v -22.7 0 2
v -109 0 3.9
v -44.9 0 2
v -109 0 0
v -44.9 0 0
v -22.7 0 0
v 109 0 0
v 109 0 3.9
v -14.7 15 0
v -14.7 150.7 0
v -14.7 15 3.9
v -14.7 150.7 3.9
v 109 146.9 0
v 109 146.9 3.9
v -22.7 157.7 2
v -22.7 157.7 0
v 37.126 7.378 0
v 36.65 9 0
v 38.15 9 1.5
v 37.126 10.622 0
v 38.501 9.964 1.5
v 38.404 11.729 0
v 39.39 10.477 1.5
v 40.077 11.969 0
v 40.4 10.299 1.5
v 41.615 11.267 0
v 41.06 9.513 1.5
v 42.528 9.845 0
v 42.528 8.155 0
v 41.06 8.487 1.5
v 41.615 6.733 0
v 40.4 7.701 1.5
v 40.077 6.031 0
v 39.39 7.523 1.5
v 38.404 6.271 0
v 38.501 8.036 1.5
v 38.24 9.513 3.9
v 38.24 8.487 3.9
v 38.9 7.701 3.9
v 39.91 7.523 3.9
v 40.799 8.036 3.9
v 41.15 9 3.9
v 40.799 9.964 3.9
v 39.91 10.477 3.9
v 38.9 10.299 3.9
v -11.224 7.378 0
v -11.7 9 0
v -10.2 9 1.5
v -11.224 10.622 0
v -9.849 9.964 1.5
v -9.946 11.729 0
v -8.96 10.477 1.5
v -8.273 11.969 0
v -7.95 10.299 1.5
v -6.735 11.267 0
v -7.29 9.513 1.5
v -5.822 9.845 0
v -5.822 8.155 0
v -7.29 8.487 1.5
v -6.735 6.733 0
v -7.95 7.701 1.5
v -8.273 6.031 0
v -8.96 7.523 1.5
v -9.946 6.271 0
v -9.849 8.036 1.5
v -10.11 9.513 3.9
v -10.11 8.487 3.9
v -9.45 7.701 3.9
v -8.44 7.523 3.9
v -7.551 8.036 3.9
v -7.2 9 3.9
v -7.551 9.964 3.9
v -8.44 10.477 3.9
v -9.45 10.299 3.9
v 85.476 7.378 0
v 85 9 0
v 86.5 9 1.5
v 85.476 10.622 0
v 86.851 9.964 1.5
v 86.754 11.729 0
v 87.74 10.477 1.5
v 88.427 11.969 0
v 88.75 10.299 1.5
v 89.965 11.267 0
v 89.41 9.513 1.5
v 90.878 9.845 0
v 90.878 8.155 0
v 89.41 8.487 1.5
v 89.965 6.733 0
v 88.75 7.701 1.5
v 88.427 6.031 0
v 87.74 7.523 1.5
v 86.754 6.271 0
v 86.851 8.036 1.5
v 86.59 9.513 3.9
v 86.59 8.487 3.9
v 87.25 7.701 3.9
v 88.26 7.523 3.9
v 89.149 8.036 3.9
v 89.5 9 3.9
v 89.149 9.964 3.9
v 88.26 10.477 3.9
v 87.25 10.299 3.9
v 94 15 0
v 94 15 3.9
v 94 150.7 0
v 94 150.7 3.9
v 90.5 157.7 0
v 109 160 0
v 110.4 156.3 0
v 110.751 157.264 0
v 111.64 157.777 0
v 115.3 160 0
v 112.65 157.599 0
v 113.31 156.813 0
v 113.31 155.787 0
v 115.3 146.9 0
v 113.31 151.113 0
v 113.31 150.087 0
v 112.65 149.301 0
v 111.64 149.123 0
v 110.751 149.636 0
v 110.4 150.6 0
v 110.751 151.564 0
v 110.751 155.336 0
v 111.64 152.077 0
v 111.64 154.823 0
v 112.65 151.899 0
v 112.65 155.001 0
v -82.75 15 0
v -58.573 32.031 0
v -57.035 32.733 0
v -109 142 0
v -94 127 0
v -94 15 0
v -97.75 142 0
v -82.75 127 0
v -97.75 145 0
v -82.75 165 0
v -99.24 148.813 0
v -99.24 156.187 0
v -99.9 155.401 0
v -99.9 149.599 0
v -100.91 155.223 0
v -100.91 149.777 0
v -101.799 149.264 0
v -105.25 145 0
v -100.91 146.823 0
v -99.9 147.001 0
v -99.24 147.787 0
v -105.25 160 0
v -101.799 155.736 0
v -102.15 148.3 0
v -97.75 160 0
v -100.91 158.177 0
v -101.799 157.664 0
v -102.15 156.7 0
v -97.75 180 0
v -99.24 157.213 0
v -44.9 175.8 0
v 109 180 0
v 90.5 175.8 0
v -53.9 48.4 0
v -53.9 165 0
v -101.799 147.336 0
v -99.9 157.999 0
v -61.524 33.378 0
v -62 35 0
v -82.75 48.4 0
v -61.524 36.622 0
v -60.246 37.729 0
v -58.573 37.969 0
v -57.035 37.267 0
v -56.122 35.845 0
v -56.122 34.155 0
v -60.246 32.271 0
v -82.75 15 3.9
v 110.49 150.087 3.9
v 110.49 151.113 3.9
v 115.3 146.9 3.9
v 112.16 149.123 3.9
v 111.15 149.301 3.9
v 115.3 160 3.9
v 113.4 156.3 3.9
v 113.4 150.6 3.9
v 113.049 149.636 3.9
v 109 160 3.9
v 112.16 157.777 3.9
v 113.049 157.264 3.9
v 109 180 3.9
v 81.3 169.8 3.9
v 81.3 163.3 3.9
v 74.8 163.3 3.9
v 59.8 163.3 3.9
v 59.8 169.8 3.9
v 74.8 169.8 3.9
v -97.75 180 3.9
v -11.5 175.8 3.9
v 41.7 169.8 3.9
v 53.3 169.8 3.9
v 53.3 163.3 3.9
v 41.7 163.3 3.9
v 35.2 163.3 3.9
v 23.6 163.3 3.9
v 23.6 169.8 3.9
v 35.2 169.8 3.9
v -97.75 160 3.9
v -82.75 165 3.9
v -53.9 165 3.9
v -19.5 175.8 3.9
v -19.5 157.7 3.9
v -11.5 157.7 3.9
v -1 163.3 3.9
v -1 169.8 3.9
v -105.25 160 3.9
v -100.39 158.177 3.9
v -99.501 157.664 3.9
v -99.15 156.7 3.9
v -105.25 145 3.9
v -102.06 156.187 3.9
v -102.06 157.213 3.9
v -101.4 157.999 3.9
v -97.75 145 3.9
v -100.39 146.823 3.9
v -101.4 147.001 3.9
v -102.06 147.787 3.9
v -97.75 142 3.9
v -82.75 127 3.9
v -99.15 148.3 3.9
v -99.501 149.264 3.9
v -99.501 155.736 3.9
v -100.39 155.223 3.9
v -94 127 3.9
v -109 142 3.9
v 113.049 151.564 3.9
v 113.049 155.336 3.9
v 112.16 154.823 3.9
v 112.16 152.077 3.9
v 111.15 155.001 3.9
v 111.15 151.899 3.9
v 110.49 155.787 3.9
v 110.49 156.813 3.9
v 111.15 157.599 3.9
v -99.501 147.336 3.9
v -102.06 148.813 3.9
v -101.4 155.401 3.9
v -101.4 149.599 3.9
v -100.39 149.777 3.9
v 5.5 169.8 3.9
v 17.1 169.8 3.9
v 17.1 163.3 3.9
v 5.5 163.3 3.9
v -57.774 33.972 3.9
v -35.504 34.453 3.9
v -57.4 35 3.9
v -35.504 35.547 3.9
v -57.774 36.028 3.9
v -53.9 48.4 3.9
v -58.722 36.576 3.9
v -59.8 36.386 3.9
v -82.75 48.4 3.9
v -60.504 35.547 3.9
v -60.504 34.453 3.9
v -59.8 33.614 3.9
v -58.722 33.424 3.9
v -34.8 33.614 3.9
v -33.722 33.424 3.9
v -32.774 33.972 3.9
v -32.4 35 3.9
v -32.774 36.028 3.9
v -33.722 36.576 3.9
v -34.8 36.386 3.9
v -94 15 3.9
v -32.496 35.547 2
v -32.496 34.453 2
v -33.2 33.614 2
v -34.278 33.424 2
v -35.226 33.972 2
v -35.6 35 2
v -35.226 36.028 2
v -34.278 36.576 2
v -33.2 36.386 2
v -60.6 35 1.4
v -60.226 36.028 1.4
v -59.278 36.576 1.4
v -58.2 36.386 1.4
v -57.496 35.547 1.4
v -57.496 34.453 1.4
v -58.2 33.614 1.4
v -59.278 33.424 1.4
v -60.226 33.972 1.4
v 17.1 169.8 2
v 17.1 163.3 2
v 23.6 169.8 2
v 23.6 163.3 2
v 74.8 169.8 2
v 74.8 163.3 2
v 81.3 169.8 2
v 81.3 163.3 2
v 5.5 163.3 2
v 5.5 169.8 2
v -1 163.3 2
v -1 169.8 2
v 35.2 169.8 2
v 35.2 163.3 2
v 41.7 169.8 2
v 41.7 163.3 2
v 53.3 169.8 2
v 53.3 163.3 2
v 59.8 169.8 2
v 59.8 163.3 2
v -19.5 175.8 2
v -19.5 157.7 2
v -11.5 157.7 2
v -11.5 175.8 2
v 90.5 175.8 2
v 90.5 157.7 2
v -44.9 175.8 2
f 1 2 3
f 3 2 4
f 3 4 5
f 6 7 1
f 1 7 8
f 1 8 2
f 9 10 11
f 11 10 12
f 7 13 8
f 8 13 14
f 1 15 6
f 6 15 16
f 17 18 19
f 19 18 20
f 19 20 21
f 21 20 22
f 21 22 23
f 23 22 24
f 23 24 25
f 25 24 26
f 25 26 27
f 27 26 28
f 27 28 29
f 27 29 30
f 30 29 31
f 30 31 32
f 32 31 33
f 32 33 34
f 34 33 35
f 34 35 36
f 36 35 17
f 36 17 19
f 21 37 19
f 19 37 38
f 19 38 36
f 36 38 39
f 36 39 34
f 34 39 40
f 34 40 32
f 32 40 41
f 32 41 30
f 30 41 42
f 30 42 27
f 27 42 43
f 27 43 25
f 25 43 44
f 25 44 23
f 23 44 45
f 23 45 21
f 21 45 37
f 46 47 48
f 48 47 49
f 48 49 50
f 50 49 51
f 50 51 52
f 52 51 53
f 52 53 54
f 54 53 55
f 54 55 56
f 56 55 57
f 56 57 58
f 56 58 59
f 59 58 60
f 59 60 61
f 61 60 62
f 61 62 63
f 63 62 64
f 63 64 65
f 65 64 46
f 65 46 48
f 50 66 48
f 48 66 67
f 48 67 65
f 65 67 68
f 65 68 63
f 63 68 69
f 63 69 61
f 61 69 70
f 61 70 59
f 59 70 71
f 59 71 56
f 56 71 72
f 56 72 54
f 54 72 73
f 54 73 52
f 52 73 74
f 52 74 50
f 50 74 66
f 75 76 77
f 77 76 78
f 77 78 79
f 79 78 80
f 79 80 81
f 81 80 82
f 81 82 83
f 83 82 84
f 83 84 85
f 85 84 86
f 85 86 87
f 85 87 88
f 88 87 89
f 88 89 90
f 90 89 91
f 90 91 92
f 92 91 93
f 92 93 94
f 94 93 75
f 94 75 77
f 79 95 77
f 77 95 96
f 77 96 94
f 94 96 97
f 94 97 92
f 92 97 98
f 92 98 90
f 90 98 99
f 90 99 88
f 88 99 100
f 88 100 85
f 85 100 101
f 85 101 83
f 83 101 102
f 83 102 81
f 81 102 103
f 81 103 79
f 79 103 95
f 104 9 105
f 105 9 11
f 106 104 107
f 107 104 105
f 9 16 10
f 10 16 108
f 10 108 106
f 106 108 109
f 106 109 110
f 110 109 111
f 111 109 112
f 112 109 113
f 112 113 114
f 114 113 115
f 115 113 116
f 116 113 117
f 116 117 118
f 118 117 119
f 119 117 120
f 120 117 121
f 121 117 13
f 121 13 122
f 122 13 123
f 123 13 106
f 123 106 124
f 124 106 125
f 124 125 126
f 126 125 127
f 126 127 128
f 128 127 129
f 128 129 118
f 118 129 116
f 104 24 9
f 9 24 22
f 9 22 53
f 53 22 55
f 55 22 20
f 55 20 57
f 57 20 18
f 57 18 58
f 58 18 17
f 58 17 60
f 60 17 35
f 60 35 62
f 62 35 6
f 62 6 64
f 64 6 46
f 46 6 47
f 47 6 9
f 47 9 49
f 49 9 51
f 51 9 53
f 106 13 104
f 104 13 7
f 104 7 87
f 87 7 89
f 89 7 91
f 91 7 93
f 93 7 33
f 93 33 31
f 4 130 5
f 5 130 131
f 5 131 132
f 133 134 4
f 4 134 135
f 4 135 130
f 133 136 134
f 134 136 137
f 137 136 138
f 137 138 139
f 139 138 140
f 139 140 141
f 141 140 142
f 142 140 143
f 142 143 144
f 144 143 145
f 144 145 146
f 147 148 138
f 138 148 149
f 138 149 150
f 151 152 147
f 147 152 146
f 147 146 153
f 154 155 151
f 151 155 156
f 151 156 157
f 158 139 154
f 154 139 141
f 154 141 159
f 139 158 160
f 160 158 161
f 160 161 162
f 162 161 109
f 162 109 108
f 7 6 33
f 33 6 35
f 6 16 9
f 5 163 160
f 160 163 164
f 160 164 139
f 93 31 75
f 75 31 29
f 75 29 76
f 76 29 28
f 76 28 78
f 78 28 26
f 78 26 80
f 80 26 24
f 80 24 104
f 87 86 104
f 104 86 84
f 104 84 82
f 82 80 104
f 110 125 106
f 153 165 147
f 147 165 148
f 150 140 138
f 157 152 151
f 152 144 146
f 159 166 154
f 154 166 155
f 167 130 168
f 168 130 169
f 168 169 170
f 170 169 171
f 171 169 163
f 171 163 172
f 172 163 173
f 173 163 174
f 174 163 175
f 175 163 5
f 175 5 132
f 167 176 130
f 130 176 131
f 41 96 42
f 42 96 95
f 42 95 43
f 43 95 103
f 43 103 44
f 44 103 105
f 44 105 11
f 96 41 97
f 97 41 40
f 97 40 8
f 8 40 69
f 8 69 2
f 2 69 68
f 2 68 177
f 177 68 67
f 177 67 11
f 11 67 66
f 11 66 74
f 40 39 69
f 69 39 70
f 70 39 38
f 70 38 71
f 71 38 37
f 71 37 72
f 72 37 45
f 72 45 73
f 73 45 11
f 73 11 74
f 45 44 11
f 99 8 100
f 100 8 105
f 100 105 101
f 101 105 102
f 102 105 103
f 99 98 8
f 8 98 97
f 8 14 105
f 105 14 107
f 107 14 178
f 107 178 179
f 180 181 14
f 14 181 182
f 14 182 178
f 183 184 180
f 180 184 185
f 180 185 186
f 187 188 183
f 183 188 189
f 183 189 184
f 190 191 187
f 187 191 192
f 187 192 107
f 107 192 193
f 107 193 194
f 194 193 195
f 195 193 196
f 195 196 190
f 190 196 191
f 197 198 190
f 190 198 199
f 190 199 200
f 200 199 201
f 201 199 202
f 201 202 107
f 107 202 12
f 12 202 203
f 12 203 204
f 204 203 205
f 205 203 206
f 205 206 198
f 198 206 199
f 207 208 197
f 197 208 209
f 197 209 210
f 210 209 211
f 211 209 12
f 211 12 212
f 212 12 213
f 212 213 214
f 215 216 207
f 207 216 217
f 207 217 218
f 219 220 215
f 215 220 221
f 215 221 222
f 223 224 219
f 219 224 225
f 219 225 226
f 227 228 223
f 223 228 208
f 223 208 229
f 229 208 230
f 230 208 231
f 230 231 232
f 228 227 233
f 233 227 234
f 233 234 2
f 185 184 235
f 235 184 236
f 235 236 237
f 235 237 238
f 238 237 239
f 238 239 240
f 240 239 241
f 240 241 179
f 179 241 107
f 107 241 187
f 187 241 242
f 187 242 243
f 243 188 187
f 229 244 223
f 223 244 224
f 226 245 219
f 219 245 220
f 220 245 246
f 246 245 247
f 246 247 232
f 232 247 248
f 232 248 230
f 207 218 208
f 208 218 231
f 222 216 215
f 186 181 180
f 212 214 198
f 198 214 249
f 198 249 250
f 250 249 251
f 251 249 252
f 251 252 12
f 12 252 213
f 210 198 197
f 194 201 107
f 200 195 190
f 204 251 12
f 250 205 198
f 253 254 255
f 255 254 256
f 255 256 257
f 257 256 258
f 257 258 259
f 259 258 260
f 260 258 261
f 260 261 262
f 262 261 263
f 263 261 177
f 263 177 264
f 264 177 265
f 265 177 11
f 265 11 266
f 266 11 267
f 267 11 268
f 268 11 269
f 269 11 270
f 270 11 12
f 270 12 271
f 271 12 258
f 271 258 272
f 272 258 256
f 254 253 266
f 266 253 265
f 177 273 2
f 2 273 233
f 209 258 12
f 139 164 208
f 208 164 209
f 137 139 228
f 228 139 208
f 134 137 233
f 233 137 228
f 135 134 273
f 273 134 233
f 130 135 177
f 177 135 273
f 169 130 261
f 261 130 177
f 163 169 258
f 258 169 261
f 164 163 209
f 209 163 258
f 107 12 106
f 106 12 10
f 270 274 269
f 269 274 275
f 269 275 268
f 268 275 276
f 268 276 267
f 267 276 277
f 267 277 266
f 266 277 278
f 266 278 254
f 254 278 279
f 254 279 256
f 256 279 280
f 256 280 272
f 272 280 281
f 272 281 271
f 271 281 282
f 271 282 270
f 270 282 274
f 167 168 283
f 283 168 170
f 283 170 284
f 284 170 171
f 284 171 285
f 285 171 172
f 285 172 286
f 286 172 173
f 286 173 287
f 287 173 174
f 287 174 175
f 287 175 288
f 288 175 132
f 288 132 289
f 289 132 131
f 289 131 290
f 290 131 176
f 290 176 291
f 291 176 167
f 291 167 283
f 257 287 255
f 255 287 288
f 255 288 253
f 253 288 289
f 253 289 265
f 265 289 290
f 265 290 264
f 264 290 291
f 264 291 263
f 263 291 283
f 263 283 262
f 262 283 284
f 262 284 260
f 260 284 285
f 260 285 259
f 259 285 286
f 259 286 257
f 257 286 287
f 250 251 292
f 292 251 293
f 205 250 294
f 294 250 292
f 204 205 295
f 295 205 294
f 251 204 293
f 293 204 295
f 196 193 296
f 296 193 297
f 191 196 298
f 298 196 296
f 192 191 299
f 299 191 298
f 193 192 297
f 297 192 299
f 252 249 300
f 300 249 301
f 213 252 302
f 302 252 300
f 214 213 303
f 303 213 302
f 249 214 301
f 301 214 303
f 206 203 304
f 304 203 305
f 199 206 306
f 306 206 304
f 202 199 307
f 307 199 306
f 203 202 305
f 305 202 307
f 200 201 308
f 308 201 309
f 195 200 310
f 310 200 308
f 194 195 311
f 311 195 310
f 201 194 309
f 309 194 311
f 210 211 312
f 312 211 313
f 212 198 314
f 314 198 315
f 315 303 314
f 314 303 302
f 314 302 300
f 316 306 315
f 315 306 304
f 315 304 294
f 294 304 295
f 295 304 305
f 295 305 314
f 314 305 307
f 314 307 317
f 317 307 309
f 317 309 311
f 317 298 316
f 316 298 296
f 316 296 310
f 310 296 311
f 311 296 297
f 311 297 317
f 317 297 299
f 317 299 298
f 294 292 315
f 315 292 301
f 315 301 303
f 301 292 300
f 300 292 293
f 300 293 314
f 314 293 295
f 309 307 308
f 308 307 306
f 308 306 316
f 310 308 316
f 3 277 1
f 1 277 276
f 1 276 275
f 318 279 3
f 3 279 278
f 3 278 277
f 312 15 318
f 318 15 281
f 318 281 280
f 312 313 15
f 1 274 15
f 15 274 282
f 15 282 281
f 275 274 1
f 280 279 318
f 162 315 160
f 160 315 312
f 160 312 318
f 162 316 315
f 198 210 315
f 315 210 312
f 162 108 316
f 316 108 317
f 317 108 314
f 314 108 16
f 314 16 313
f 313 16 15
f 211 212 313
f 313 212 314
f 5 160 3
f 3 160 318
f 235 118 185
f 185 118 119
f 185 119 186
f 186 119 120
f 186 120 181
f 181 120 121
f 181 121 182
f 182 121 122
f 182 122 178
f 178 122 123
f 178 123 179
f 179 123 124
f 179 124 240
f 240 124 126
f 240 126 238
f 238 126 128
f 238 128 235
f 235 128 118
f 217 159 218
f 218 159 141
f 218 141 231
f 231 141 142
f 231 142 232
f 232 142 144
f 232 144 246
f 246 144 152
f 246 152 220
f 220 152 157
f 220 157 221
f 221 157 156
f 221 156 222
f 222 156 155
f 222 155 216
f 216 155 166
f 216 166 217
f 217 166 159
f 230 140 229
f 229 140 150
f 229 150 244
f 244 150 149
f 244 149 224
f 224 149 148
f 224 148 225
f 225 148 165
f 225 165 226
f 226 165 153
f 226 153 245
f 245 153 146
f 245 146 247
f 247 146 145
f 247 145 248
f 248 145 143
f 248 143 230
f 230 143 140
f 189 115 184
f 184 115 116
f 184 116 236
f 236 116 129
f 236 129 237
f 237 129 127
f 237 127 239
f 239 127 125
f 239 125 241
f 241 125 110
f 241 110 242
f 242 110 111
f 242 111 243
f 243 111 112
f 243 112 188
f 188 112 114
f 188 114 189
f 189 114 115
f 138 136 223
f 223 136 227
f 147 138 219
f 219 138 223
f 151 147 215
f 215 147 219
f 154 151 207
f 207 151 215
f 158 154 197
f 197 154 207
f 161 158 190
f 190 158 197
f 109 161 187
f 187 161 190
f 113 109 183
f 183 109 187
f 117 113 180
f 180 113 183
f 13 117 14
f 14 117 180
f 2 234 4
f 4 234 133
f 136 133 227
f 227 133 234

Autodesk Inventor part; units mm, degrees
ref_plane "YZ Plane" through (0, 0, 0) normal (1, 0, 0) x (0, 1, 0)
ref_plane "XZ Plane" through (0, 0, 0) normal (0, 1, 0) x (-1, 0, 0)
ref_plane "XY Plane" through (0, 0, 0) normal (0, 0, 1) x (1, 0, 0)
ref_plane "Plano de trabajo1" through (0, 0, 0) normal (0, 0, 1) x (1, 0, 0)
sketch "Boceto1" plane through (0, 0, 0) normal (0, 0, 1) x (1, 0, 0)
  circle A0 centre (-100.65, -156.7) radius 1.65
  circle A1 centre (-100.65, -148.3) radius 1.65
  circle A2 centre (-100.65, 156.7) radius 1.65
  circle A3 centre (-100.65, 148.3) radius 1.65
  line L0 (-97.75, 145) -> (-105.25, 145)
  line L1 (-97.75, 142) -> (-97.75, 145)
  line L2 (-109, 142) -> (-97.75, 142)
  line L3 (-109, -142) -> (-109, 142)
  line L4 (-97.75, -142) -> (-109, -142)
  line L5 (-97.75, -145) -> (-97.75, -142)
  line L6 (-105.25, -145) -> (-97.75, -145)
  line L7 (-105.25, -160) -> (-105.25, -145)
  line L8 (-97.75, -160) -> (-105.25, -160)
  line L9 (-97.75, -180) -> (-97.75, -160)
  line L10 (109, -180) -> (-97.75, -180)
  line L11 (115.3, -160) -> (109, -160)
  line L12 (109, 146.9) -> (109, -146.9)
  line L13 (109, -146.9) -> (115.3, -146.9)
  line L14 (115.3, 146.9) -> (109, 146.9)
  line L15 (109, 180) -> (109, 160)
  line L16 (109, 160) -> (115.3, 160)
  line L17 (-97.75, 180) -> (109, 180)
  line L18 (-97.75, 160) -> (-97.75, 180)
  line L19 (-105.25, 160) -> (-97.75, 160)
  line L20 (-105.25, 145) -> (-105.25, 160)
  circle A4 centre (111.9, -156.3) radius 1.2
  circle A5 centre (111.9, -150.6) radius 1.2
  circle A6 centre (111.9, 156.3) radius 1.2
  circle A7 centre (111.9, 150.6) radius 1.2
  line L21 (115.3, -146.9) -> (115.3, -160)
  line L22 (115.3, 160) -> (115.3, 146.9)
  line L23 (109, -160) -> (109, -180)
  point P0 (0, 0)
extrude "Extrusión1" add sketch "Boceto1" along normal blind 3.9 contours A0 | A1 | A2 | A3 | L0 L20 L19 L18 L17 L15 L16 L22 L14 L12 L13 L21 L11 L23 L10 L9 L8 L7 L6 L5 L4 L3 L2 L1 | A4 | A5 | A6 | A7
sketch "Boceto3" plane through (0, 0, 0) normal (0, 0, -1) x (-1, 0, 0)
  line L0 (111, 180) -> (111, -185.2)
  line L1 (90.8, 170.8) -> (90.8, -176)
  line L2 (-99.7, -176) -> (-99.7, 170.8)
  line L3 (-117.3, 180) -> (-117.3, -185.2)
  line L4 (90.8, 170.8) -> (90.8, -176)
  line L5 (90.8, -176) -> (-99.7, -176)
  line L6 (-99.7, -176) -> (-99.7, 170.8)
  line L7 (-117.3, 180) -> (-117.3, -185.2)
  line L8 (109, -187.2) -> (-115.3, -187.2)
  line L9 (111, 180) -> (111, -185.2)
  circle A0 centre (-111.9, -150.6) radius 2.5
  circle A1 centre (100.65, -148.3) radius 2.5
  circle A2 centre (100.65, -156.7) radius 2.5
  circle A3 centre (-111.9, -156.3) radius 2.5
  arc A4 (-117.3, -185.2) -> (-115.3, -187.2) centre (-115.3, -185.2) ccw
  line L10 (109, -187.2) -> (-115.3, -187.2)
  arc A5 (109, -187.2) -> (111, -185.2) centre (109, -185.2) ccw
  circle A6 centre (-111.9, -150.6) radius 2.5
  circle A7 centre (-111.9, -156.3) radius 2.5
  arc A8 (-117.3, -185.2) -> (-115.3, -187.2) centre (-115.3, -185.2) ccw
  arc A9 (109, -187.2) -> (111, -185.2) centre (109, -185.2) ccw
  circle A10 centre (-111.9, 150.6) radius 2.5
  circle A11 centre (100.65, -156.7) radius 2.5
  circle A12 centre (100.65, 148.3) radius 2.5
  circle A13 centre (100.65, 156.7) radius 2.5
  circle A14 centre (100.65, -148.3) radius 2.5
  circle A15 centre (-111.9, 156.3) radius 2.5
  arc A16 (111, 180) -> (109, 182) centre (109, 180) ccw
  line L11 (109, 182) -> (-115.3, 182)
  arc A17 (-115.3, 182) -> (-117.3, 180) centre (-115.3, 180) ccw
  line L12 (-99.7, 170.8) -> (90.8, 170.8)
  line L13 (90.8, -176) -> (-99.7, -176)
  circle A18 centre (-111.9, 150.6) radius 2.5
  circle A19 centre (100.65, 148.3) radius 2.5
  circle A20 centre (100.65, 156.7) radius 2.5
  circle A21 centre (-111.9, 156.3) radius 2.5
  arc A22 (111, 180) -> (109, 182) centre (109, 180) ccw
  line L14 (109, 182) -> (-115.3, 182)
  arc A23 (-115.3, 182) -> (-117.3, 180) centre (-115.3, 180) ccw
  line L15 (-99.7, 170.8) -> (90.8, 170.8)
  point P0 (0, 0)
  point P1 (111, 0)
  point P2 (90.8, 0)
  point P3 (-99.7, 0)
  point P4 (-117.3, 0)
hole "Agujero1" at (-100.65, -148.3, 0) at (-100.65, -156.7, 0) at (111.9, -156.3, 0) at (111.9, -150.6, 0) at (-100.65, 156.7, 0) at (-100.65, 148.3, 0) at (111.9, 150.6, 0) at (111.9, 156.3, 0) direction (0, 0, 1) diameter 3 end through all
sketch "Boceto4" plane through (0, 0, 3.9) normal (0, 0, 1) x (1, 0, 0)
  line L0 (-59, -109.6) -> (-59, -139.7)
  line L1 (-59, -139.7) -> (-49.6, -139.7)
  line L2 (-49.6, -109.6) -> (-59, -109.6)
  line L3 (-59, -62.4) -> (-59, -169.5)
  line L4 (-3.9, -169.5) -> (-3.9, -62.4)
  line L5 (-3.9, -62.4) -> (-59, -62.4)
  line L6 (-59, -169.5) -> (-3.9, -169.5)
  line L7 (-49.6, -139.7) -> (-49.6, -109.6)
  point P0 (0, 0)
  point P1 (-3.9, -139.7)
  point P2 (-3.9, -109.6)
extrude "Extrusión2" cut sketch "Boceto4" against normal through all
sketch "Boceto5" plane through (0, 0, 3.9) normal (0, 0, 1) x (1, 0, 0)
  line L0 (-59, -62.4) -> (-3.9, -62.4)
  line L1 (-3.9, -62.4) -> (-3.9, -87.4)
  line L2 (-3.9, -109.6) -> (-3.9, -139.7)
  line L3 (-3.9, -87.4) -> (1.1, -87.4)
  line L4 (-3.9, -87.4) -> (1.1, -87.4) construction
  line L5 (1.1, -87.4) -> (1.1, -107.4)
  line L6 (1.1, -107.4) -> (-3.9, -107.4)
  line L7 (-3.9, -87.4) -> (-3.9, -107.4)
  point P0 (0, 0)
  point P1 (-3.9, -169.5)
  dimension "d11" = 25
  dimension "d12" = 5
  dimension "d13" = 0
  dimension "d14" = 20
extrude "Extrusión3" cut sketch "Boceto5" against normal blind 4
sketch "Boceto6" plane through (0, 0, 0) normal (0, 0, -1) x (-1, 0, 0)
  line L0 (-1.1, -87.4) -> (-1.1, -107.4)
  line L1 (-1.1, -87.4) -> (-61.1, -87.4)
  line L2 (-61.1, -87.4) -> (-61.1, -107.4)
  line L3 (-61.1, -107.4) -> (-1.1, -107.4)
  line L4 (-1.1, -107.4) -> (-1.1, -87.4)
  point P0 (0, 0)
  dimension "d17" = 60
extrude "Extrusión4" cut sketch "Boceto6" against normal blind 1
sketch "Boceto7" plane through (0, 0, 0) normal (0, 0, -1) x (-1, 0, 0)
  line L0 (3.9, -109.6) -> (3.9, -139.7)
  line L1 (109, 142) -> (109, -142)
  line L2 (3.9, -87.4) -> (109, -87.4)
  line L3 (109, -87.4) -> (109, -107.4)
  line L4 (109, -107.4) -> (3.9, -107.4)
  line L5 (3.9, -107.4) -> (3.9, -87.4)
  point P0 (0, 0)
  point P1 (3.9, -107.4)
  point P2 (3.9, -107.4)
  dimension "d20" = 20
extrude "Extrusión5" cut sketch "Boceto7" against normal blind 1
sketch "Boceto8" plane through (0, 0, 3.9) normal (0, 0, 1) x (1, 0, 0)
  line L0 (109, 180) -> (-97.75, 180)
  line L1 (0, 180) -> (0, -258.0429)
  line L2 (102.7, -146.9) -> (102.7, 146.9)
  line L3 (-109, 142) -> (-109, -142)
  line L4 (-109, 0) -> (102.7, 0)
  line L5 (-3.9, -87.4) -> (-3.9, -62.4)
  line L6 (-3.9, -62.4) -> (-59.3756, -62.4)
  line L7 (-59.3756, -62.4) -> (-59.3756, -169.7804)
  line L8 (-59.3756, -169.7804) -> (-3.9, -169.7804)
  line L9 (-3.9, -169.7804) -> (-3.9, -62.4)
  line L10 (-64.3756, -57.4) -> (1.1, -57.4)
  line L11 (1.1, -57.4) -> (1.1, -174.7804)
  line L12 (1.1, -174.7804) -> (-64.3756, -174.7804)
  line L13 (-64.3756, -174.7804) -> (-64.3756, -57.4)
  point P0 (0, 0)
  point P1 (102.7, 180)
  point P2 (0, -174.7804)
  point P3 (0, -57.4)
  dimension "d23" = 5
extrude "Extrusión6" add sketch "Boceto8" along normal blind 16 contours L1 L12 L13 L10
sketch "Boceto9" plane through (-59.3756, -169.7804, 3.9) normal (1, 0, 0) x (0, 0, -1)
  line L0 (-0.9, 89.3804) -> (-0.9, 107.3804)
  line L1 (2.4, 107.3804) -> (-0.9, 107.3804)
  line L2 (2.4, 107.3804) -> (2.4, 0.2804)
  line L3 (2.4, 0.2804) -> (-0.9, 0.2804)
  line L4 (-0.9, 0.2804) -> (-0.9, 6.4804)
  line L5 (-0.9, 6.4804) -> (-12.4, 6.4804)
  line L6 (-12.4, 6.4804) -> (-12.4, 15.4804)
  line L7 (-12.4, 15.4804) -> (-0.9, 15.4804)
  line L8 (-0.9, 15.4804) -> (-0.9, 20.2804)
  line L9 (-0.9, 20.2804) -> (-10.2, 20.2804)
  line L10 (-10.2, 20.2804) -> (-10.2, 27.4804)
  line L11 (-10.2, 27.4804) -> (-0.9, 27.4804)
  line L12 (-0.9, 27.4804) -> (-0.9, 30.0804)
  line L13 (-0.9, 30.0804) -> (-13.95, 30.0804)
  line L14 (-13.95, 60.1804) -> (-13.95, 30.0804)
  line L15 (-13.95, 60.1804) -> (-0.9, 60.1804)
  line L16 (-0.9, 60.1804) -> (-0.9, 73.3804)
  line L17 (-0.9, 73.3804) -> (-7.6, 73.3804)
  line L18 (-7.6, 73.3804) -> (-7.6, 89.3804)
  line L19 (-7.6, 89.3804) -> (-0.9, 89.3804)
  line L20 (0, 107.3804) -> (0, 0)
  line L21 (0, 107.3804) -> (-16, 107.3804)
  line L22 (-16, 0) -> (-16, 107.3804)
  line L23 (0, 0) -> (-16, 0)
  line L24 (-0.9, 89.3804) -> (-0.9, 73.3804)
  line L25 (-0.9, 73.3804) -> (-0.9, 6.4804)
  point P0 (3.9, 169.7804)
  point P1 (-0.9, 15.4804)
  point P2 (-0.9, 20.2804)
  point P3 (-0.9, 27.4804)
  point P4 (-0.9, 30.0804)
  point P5 (-0.9, 60.1804)
extrude "Extrusión7" cut sketch "Boceto9" against normal blind 15 contours L24 L17 L18 L19 | L25 L13 L14 L15 | L25 L9 L10 L11 | L5 L6 L7 L25
sketch "Boceto10" plane through (-59.3756, -169.7804, 3.9) normal (1, 0, 0) x (0, 0, -1)
  line L0 (-16, 0) -> (-16, 107.3804)
  line L1 (0, 107.3804) -> (-16, 107.3804)
  line L2 (-16, 0) -> (-13.95, 0)
  line L3 (-13.95, 0) -> (-13.95, 107.3804)
  line L4 (-13.95, 107.3804) -> (-16, 107.3804)
  line L5 (-16, 107.3804) -> (-16, 0)
  point P0 (3.9, 169.7804)
  dimension "d28" = 2.05
extrude "Extrusión8" add sketch "Boceto10" along normal up to surface (55.4756 mm away)
sketch "Boceto11" plane through (-59.3756, -109.6, 17.85) normal (0, 0, -1) x (-1, 0, 0)
  line L0 (-14.4756, 41.2) -> (-36.6756, 41.2)
  line L1 (-36.6756, 41.2) -> (-36.6756, 47.2)
  line L2 (-14.4756, 47.2) -> (-14.4756, 41.2)
  line L3 (-14.4756, 47.2) -> (-36.6756, 47.2)
  line L4 (-0.3756, 29.2) -> (-12.3756, 29.2)
  line L5 (-12.3756, 13.2) -> (-12.3756, 29.2)
  line L6 (-0.3756, 13.2) -> (-12.3756, 13.2)
  line L7 (-0.3756, 13.2) -> (-0.3756, 29.2)
  line L8 (-0.3756, -44.7) -> (-15.3756, -44.7)
  line L9 (-0.3756, -53.7) -> (-15.3756, -53.7)
  line L10 (-15.3756, -53.7) -> (-15.3756, -44.7)
  line L11 (-0.3756, -39.9) -> (-26.3756, -39.9)
  line L12 (-0.3756, -32.7) -> (-26.3756, -32.7)
  line L13 (-26.3756, -39.9) -> (-26.3756, -32.7)
  line L14 (-9.7756, 0) -> (-9.7756, -30.1)
  line L15 (-9.7756, 0) -> (-0.3756, 0)
  line L16 (-0.3756, -32.7) -> (-26.3756, -32.7)
  line L17 (-0.3756, -32.7) -> (-26.3756, -32.7)
  line L18 (-0.3756, -30.1) -> (-9.7756, -30.1)
  arc A0 (-48.2506, 42.8) -> (-49.9006, 41.15) centre (-49.9006, 42.8) ccw
  circle A1 centre (-5.9506, 42.8) radius 1.65
  circle A2 centre (-49.9006, -55.5) radius 1.65
  circle A3 centre (-5.9506, -55.5) radius 1.65
  line L19 (-55.4756, -60.1804) -> (-55.4756, 47.2)
  line L20 (-55.4756, 47.2) -> (-45.4756, 47.2)
  line L21 (-45.4756, 47.2) -> (-45.4756, 37.2)
  line L22 (-45.4756, 37.2) -> (-55.4756, 37.2)
  line L23 (-55.4756, 37.2) -> (-55.4756, 47.2)
  line L24 (-0.3756, 47.2) -> (-10.3756, 47.2)
  line L25 (-10.3756, 47.2) -> (-10.3756, 37.2)
  line L26 (-10.3756, 37.2) -> (-0.3756, 37.2)
  line L27 (-0.3756, 37.2) -> (-0.3756, 47.2)
  line L28 (0, -60.1804) -> (-55.4756, -60.1804)
  line L29 (-55.4756, -60.1804) -> (-45.4756, -60.1804)
  line L30 (-55.4756, -50.1804) -> (-55.4756, -60.1804)
  line L31 (-0.3756, -59.9) -> (-0.3756, 47.2)
  line L32 (-0.3756, -59.9) -> (-10.3756, -59.9)
  line L33 (-10.3756, -59.9) -> (-10.3756, -53.8)
  line L34 (-10.3756, -53.8) -> (-0.3756, -53.8)
  line L35 (-0.3756, -53.8) -> (-0.3756, -59.9)
  line L36 (-55.4756, -59.9) -> (-0.3756, -59.9)
  line L37 (-55.4756, -59.9) -> (-45.4756, -59.9)
  line L38 (-45.4756, -59.9) -> (-45.4756, -49.9)
  line L39 (-45.4756, -49.9) -> (-55.4756, -49.9)
  line L40 (-55.4756, -49.9) -> (-55.4756, -59.9)
  circle A4 centre (-49.9006, 42.8) radius 1.65
  point P0 (-59.3756, 109.6)
  point P1 (-0.3756, -53.8)
  dimension "d31" = 10
  dimension "d32" = 10
  dimension "d33" = 10
  dimension "d34" = 10
  dimension "d37" = 6.1
  dimension "d38" = 10
  dimension "d39" = 10
extrude "Extrusión9" add sketch "Boceto11" along normal blind 12.5 contours L19 L20 L21 L22 | L36 L19 L39 L38 | L31 L32 L33 L34 | L26 L25 L24 L27
sketch "Boceto12" plane through (-64.3756, -57.4, 3.9) normal (0, 1, 0) x (1, 0, 0)
  line L0 (41.6756, -0.9) -> (60.4756, -0.9)
  line L1 (60.4756, 2.4) -> (60.4756, -0.9)
  line L2 (60.4756, 2.4) -> (5.3756, 2.4)
  line L3 (5.3756, 2.4) -> (5.3756, -0.9)
  line L4 (5.3756, -0.9) -> (19.4756, -0.9)
  line L5 (19.4756, -0.9) -> (19.4756, -9.5)
  line L6 (19.4756, -9.5) -> (41.6756, -9.5)
  line L7 (41.6756, -9.5) -> (41.6756, -0.9)
  line L8 (19.4756, -0.9) -> (42.0812, -0.9)
  point P0 (64.3756, 3.9)
extrude "Extrusión10" cut sketch "Boceto12" against normal blind 12.5 contours L7 L6 L5 L8
sketch "Boceto13" plane through (0, 0, 3.9) normal (0, 0, 1) x (1, 0, 0)
  line L0 (-44.9, -57.4) -> (-22.7, -57.4)
  line L1 (-22.7, -57.4) -> (-44.9, -57.4)
  line L2 (-44.9, -57.4) -> (-44.9, -52.4)
  line L3 (-44.9, -52.4) -> (-22.7, -52.4)
  line L4 (-22.7, -52.4) -> (-22.7, -57.4)
  point P0 (0, 0)
  dimension "d44" = 5
extrude "Extrusión11" cut sketch "Boceto13" against normal blind 12.5
sketch "Boceto15" plane through (0, 0, 0) normal (0, 0, -1) x (-1, 0, 0)
  line L0 (22.7, 175.8) -> (22.7, -52.4)
  line L1 (44.9, -52.4) -> (44.9, 175.8)
  line L2 (44.9, 175.8) -> (22.7, 175.8)
  line L3 (18.5, 175.8) -> (44.9, 175.8)
  line L4 (-102.7, 175.8) -> (97.75, 175.8)
  line L5 (44.9, 157.7) -> (18.5, 157.7)
  line L6 (18.5, 157.7) -> (-90.5, 157.7)
  line L7 (-90.5, 180) -> (-90.5, 130)
  circle A0 centre (100.65, -156.7) radius 1.65
  circle A1 centre (100.65, -148.3) radius 1.65
  circle A2 centre (100.65, 156.7) radius 1.65
  circle A3 centre (100.65, 148.3) radius 1.65
  line L8 (97.75, 145) -> (105.25, 145)
  line L9 (105.25, 145) -> (105.25, 160)
  line L10 (105.25, 160) -> (97.75, 160)
  line L11 (97.75, 160) -> (97.75, 180)
  line L12 (97.75, 180) -> (-109, 180)
  line L13 (-109, 160) -> (-115.3, 160)
  line L14 (-109, -160) -> (-109, -180)
  line L15 (-115.3, 146.9) -> (-109, 146.9)
  line L16 (-109, -146.9) -> (-115.3, -146.9)
  line L17 (-109, 180) -> (-109, 160)
  line L18 (-115.3, -160) -> (-109, -160)
  line L19 (-109, -180) -> (97.75, -180)
  line L20 (97.75, -180) -> (97.75, -160)
  line L21 (97.75, -160) -> (105.25, -160)
  line L22 (105.25, -160) -> (105.25, -145)
  line L23 (105.25, -145) -> (97.75, -145)
  line L24 (97.75, -145) -> (97.75, -142)
  line L25 (97.75, -142) -> (109, -142)
  line L26 (109, -142) -> (109, 142)
  line L27 (109, 142) -> (97.75, 142)
  line L28 (97.75, 142) -> (97.75, 145)
  circle A4 centre (100.65, -156.7) radius 1.65
  circle A5 centre (100.65, -148.3) radius 1.65
  circle A6 centre (100.65, 156.7) radius 1.65
  circle A7 centre (100.65, 148.3) radius 1.65
  line L29 (97.75, 145) -> (105.25, 145)
  line L30 (105.25, 145) -> (105.25, 160)
  line L31 (105.25, 160) -> (97.75, 160)
  line L32 (97.75, 160) -> (97.75, 180)
  line L33 (97.75, 180) -> (-109, 180)
  line L34 (-109, 160) -> (-115.3, 160)
  line L35 (-109, -160) -> (-109, -180)
  line L36 (-115.3, 146.9) -> (-109, 146.9)
  line L37 (-109, -146.9) -> (-115.3, -146.9)
  line L38 (-109, 180) -> (-109, 160)
  line L39 (-115.3, -160) -> (-109, -160)
  line L40 (-109, -180) -> (97.75, -180)
  line L41 (97.75, -180) -> (97.75, -160)
  line L42 (97.75, -160) -> (105.25, -160)
  line L43 (105.25, -160) -> (105.25, -145)
  line L44 (105.25, -145) -> (97.75, -145)
  line L45 (97.75, -145) -> (97.75, -142)
  line L46 (97.75, -142) -> (109, -142)
  line L47 (109, -142) -> (109, 142)
  line L48 (109, 142) -> (97.75, 142)
  line L49 (97.75, 142) -> (97.75, 145)
  line L50 (44.9, -52.4) -> (44.9, -57.4)
  line L51 (22.7, -52.4) -> (44.9, -52.4)
  circle A8 centre (-111.9, -156.3) radius 1.2
  circle A9 centre (-111.9, -150.6) radius 1.2
  circle A10 centre (-111.9, 156.3) radius 1.2
  circle A11 centre (-111.9, 150.6) radius 1.2
  line L52 (-115.3, 160) -> (-115.3, 146.9)
  line L53 (-109, 146.9) -> (-109, -146.9)
  line L54 (-115.3, -146.9) -> (-115.3, -160)
  circle A12 centre (-111.9, -156.3) radius 1.2
  circle A13 centre (-111.9, -150.6) radius 1.2
  circle A14 centre (-111.9, 156.3) radius 1.2
  circle A15 centre (-111.9, 150.6) radius 1.2
  line L55 (-115.3, 160) -> (-115.3, 146.9)
  line L56 (-109, 146.9) -> (-109, -146.9)
  line L57 (-115.3, -146.9) -> (-115.3, -160)
  point P0 (0, 0)
  point P1 (-102.7, 180)
  point P2 (-102.7, 160)
  point P3 (-102.7, 146.9)
  point P4 (-102.7, -146.9)
  point P5 (-102.7, -160)
  point P6 (-102.7, -180)
  point P7 (-90.5, 175.8)
  point P8 (22.7, 157.7)
extrude "Extrusión13" cut sketch "Boceto15" against normal blind 2 contours L2 L1 L5 L0 | L0 L5 L6 L7 L4 L3 | L5 L1 L51 L0
sketch "Boceto16" plane through (0, 0, 2) normal (0, 0, -1) x (-1, 0, 0)
  line L0 (22.7, 157.7) -> (-90.5, 157.7)
  line L1 (-90.5, 157.7) -> (-81.3, 157.7)
  line L2 (-90.5, 157.7) -> (-81.3, 157.7) construction
  line L3 (-81.3, 157.7) -> (-81.3, 175.8645)
  line L4 (-90.5, 175.8) -> (44.9, 175.8)
  line L5 (-90.5, 175.8) -> (-90.5, 169.8)
  line L6 (-90.5, 157.7) -> (-90.5, 175.8)
  line L7 (-90.5, 169.8) -> (44.9, 169.8)
  line L8 (44.9, 175.8) -> (44.9, -52.4)
  line L9 (22.7, 157.7) -> (-90.5, 157.7)
  line L10 (-90.5, 157.7) -> (-90.5, 163.3)
  line L11 (-90.5, 163.3) -> (44.9, 163.3)
  line L12 (-81.3, 163.3) -> (-74.8, 163.3)
  line L13 (-74.8, 163.3) -> (-74.8, 169.8)
  line L14 (-74.8, 169.8) -> (-81.3, 169.8)
  line L15 (-81.3, 169.8) -> (-81.3, 163.3)
  line L16 (-90.5, 163.3) -> (-59.8, 163.3)
  line L17 (-59.8, 163.3) -> (-59.8, 169.8)
  line L18 (-59.8, 163.3) -> (-53.3, 163.3)
  line L19 (-53.3, 163.3) -> (-53.3, 169.8)
  line L20 (-53.3, 169.8) -> (-59.8, 169.8)
  line L21 (-59.8, 169.8) -> (-59.8, 163.3)
  line L22 (-90.5, 163.3) -> (-41.7, 163.3)
  line L23 (-41.7, 163.3) -> (-41.7, 169.8)
  line L24 (-41.7, 163.3) -> (-35.2, 163.3)
  line L25 (-35.2, 163.3) -> (-35.2, 169.8)
  line L26 (-35.2, 169.8) -> (-41.7, 169.8)
  line L27 (-41.7, 169.8) -> (-41.7, 163.3)
  line L28 (-90.5, 163.3) -> (-23.6, 163.3)
  line L29 (-90.5, 163.3) -> (-23.6, 163.3) construction
  line L30 (-23.6, 163.3) -> (-23.6, 169.8)
  line L31 (-23.6, 163.3) -> (-17.1, 163.3)
  line L32 (-17.1, 163.3) -> (-17.1, 169.8)
  line L33 (-17.1, 169.8) -> (-23.6, 169.8)
  line L34 (-23.6, 169.8) -> (-23.6, 163.3)
  line L35 (-90.5, 163.3) -> (-5.5, 163.3)
  line L36 (-90.5, 163.3) -> (-5.5, 163.3) construction
  line L37 (-5.5, 163.3) -> (1, 163.3)
  line L38 (1, 163.3) -> (1, 169.8)
  line L39 (1, 169.8) -> (-5.5, 169.8)
  line L40 (-5.5, 169.8) -> (-5.5, 163.3)
  line L41 (-90.5, 175.8) -> (44.9, 175.8)
  line L42 (-90.5, 175.8) -> (11.5, 175.8)
  line L43 (-90.5, 175.8) -> (11.5, 175.8) construction
  line L44 (11.5, 175.8) -> (11.5, 157.7)
  line L45 (11.5, 157.7) -> (19.5, 157.7)
  line L46 (19.5, 157.7) -> (19.5, 175.8)
  line L47 (19.5, 175.8) -> (11.5, 175.8)
  line L48 (11.5, 175.8) -> (11.5, 157.7)
  point P0 (0, 0)
  dimension "d58" = 9.2
  dimension "d59" = 0
  dimension "d60" = 6
  dimension "d61" = 5.6
  dimension "d62" = 6.5
  dimension "d63" = 30.7
  dimension "d64" = 6.5
  dimension "d65" = 6.5
  dimension "d66" = 48.8
  dimension "d67" = 6.5
  dimension "d68" = 6.5
  dimension "d69" = 66.9
  dimension "d70" = 0
  dimension "d71" = 90
  dimension "d72" = 6.5
  dimension "d73" = 6.5
  dimension "d74" = 85
  dimension "d75" = 0
  dimension "d76" = 6.5
  dimension "d77" = 6.5
  dimension "d80" = 102
  dimension "d81" = 0
  dimension "d82" = 8
extrude "Extrusión14" cut sketch "Boceto16" against normal through all contours L0 L44 L11 L46 | L11 L44 L7 L46 | L7 L44 L4 L46 | L3 L7 L13 L11 | L11 L40 L7 L38 | L17 L7 L19 L11 | L11 L30 L7 L32 | L23 L7 L25 L11
fillet "Empalme1" radius 5 5 edges at (0, -116.0902, 19.9) (-32.1878, -57.4, 19.9) (0, -57.4, 11.9) (-32.1878, -174.7804, 19.9) (0, -174.7804, 11.9)
sketch "Boceto17" plane through (-59.3756, -109.6, 17.85) normal (0, 0, -1) x (-1, 0, 0)
  line L0 (-0.3756, -32.7) -> (-26.3756, -32.7)
  line L1 (-26.3756, -39.9) -> (-26.3756, -32.7)
  line L2 (-0.3756, -39.9) -> (-26.3756, -39.9)
  line L3 (-26.3756, -32.7) -> (-15.3756, -32.7)
  line L4 (-15.3756, -32.7) -> (-15.3756, -39.9)
  line L5 (-15.3756, -39.9) -> (-26.3756, -39.9)
  line L6 (-26.3756, -39.9) -> (-26.3756, -32.7)
  point P0 (-59.3756, 109.6)
  point P1 (-15.3756, -32.7)
  dimension "d84" = 11
extrude "Extrusión15" cut sketch "Boceto17" against normal blind 16
ref_plane "Plano de trabajo2" through (-97.75, 0, 0) normal (0, -1, 0) x (1, 0, 0)
fillet "Empalme3" radius 5 4 edges at (-13.9, -72.4, 11.6) (-49, -72.4, 11.6) (-13.9, -159.5, 11.6) (-49, -163.4, 11.6)
sketch "Boceto22" plane through (0, 0, 0) normal (0, 0, -1) x (-1, 0, 0)
  circle A0 centre (59, -35) radius 1.5
  circle A1 centre (59, 35) radius 1.5
  circle A2 centre (34, -35) radius 1.5
  circle A3 centre (34, 35) radius 1.5
  arc A4 (29, -35) -> (34, -40) centre (34, -35) ccw
  line L0 (29, -35) -> (29, 35)
  arc A5 (34, 40) -> (29, 35) centre (34, 35) ccw
  line L1 (34, 40) -> (59, 40)
  arc A6 (64, 35) -> (59, 40) centre (59, 35) ccw
  line L2 (64, 35) -> (64, -35)
  arc A7 (59, -40) -> (64, -35) centre (59, -35) ccw
  line L3 (59, -40) -> (34, -40)
  arc A8 (55.6519, 33) -> (59, 31.1) centre (59, 35) ccw
  line L4 (37.3481, 33) -> (55.6519, 33)
  arc A9 (34, 31.1) -> (37.3481, 33) centre (34, 35) ccw
  line L5 (34, 31.1) -> (34, 22)
  line L6 (59, 22) -> (34, 22)
  line L7 (59, 22) -> (59, 31.1)
  line L8 (59, -31.1) -> (59, -22)
  line L9 (34, -22) -> (59, -22)
  line L10 (34, -22) -> (34, -31.1)
  arc A10 (37.3481, -33) -> (34, -31.1) centre (34, -35) ccw
  line L11 (55.6519, -33) -> (37.3481, -33)
  arc A11 (59, -31.1) -> (55.6519, -33) centre (59, -35) ccw
  point P0 (0, 0)
hole "Agujero5" at (-59, 35, 0) at (-59, -35, 0) direction (0, 0, 1) diameter 3.2 end through all countersink diameter 6 countersink angle 90
sketch "Boceto24" plane through (0, 0, 2) normal (0, 0, -1) x (-1, 0, 0)
  circle A0 centre (59, -35) radius 1.5
  circle A1 centre (59, 35) radius 1.5
  circle A2 centre (34, -35) radius 1.5
  circle A3 centre (34, 35) radius 1.5
  arc A4 (29, -35) -> (34, -40) centre (34, -35) ccw
  line L0 (29, -35) -> (29, 35)
  arc A5 (34, 40) -> (29, 35) centre (34, 35) ccw
  line L1 (34, 40) -> (59, 40)
  arc A6 (64, 35) -> (59, 40) centre (59, 35) ccw
  line L2 (64, 35) -> (64, -35)
  arc A7 (59, -40) -> (64, -35) centre (59, -35) ccw
  line L3 (59, -40) -> (34, -40)
  arc A8 (55.6519, 33) -> (59, 31.1) centre (59, 35) ccw
  line L4 (37.3481, 33) -> (55.6519, 33)
  arc A9 (34, 31.1) -> (37.3481, 33) centre (34, 35) ccw
  line L5 (34, 31.1) -> (34, 22)
  line L6 (59, 22) -> (34, 22)
  line L7 (59, 22) -> (59, 31.1)
  line L8 (59, -31.1) -> (59, -22)
  line L9 (34, -22) -> (59, -22)
  line L10 (34, -22) -> (34, -31.1)
  arc A10 (37.3481, -33) -> (34, -31.1) centre (34, -35) ccw
  line L11 (55.6519, -33) -> (37.3481, -33)
  arc A11 (59, -31.1) -> (55.6519, -33) centre (59, -35) ccw
  point P0 (0, 0)
hole "Agujero6" at (-34, -35, 2) at (-34, 35, 2) direction (0, 0, 1) diameter 3.2 end through all
sketch "Boceto25" plane through (0, 0, 3.9) normal (0, 0, 1) x (1, 0, 0)
  circle A0 centre (-34, -35) radius 1.6
  circle A1 centre (-34, 35) radius 1.6
  circle A2 centre (-59, 35) radius 1.6
  circle A3 centre (-59, -35) radius 1.6
  line L0 (23.6, 169.8) -> (23.6, 163.3)
  line L1 (23.6, 163.3) -> (17.1, 163.3)
  line L2 (17.1, 163.3) -> (17.1, 169.8)
  line L3 (17.1, 169.8) -> (23.6, 169.8)
  line L4 (81.3, 169.8) -> (81.3, 163.3)
  line L5 (81.3, 163.3) -> (74.8, 163.3)
  line L6 (74.8, 163.3) -> (74.8, 169.8)
  line L7 (74.8, 169.8) -> (81.3, 169.8)
  line L8 (-1, 163.3) -> (-1, 169.8)
  line L9 (-1, 169.8) -> (5.5, 169.8)
  line L10 (5.5, 169.8) -> (5.5, 163.3)
  line L11 (5.5, 163.3) -> (-1, 163.3)
  line L12 (41.7, 169.8) -> (41.7, 163.3)
  line L13 (41.7, 163.3) -> (35.2, 163.3)
  line L14 (35.2, 163.3) -> (35.2, 169.8)
  line L15 (35.2, 169.8) -> (41.7, 169.8)
  line L16 (59.8, 169.8) -> (59.8, 163.3)
  line L17 (59.8, 163.3) -> (53.3, 163.3)
  line L18 (53.3, 163.3) -> (53.3, 169.8)
  line L19 (53.3, 169.8) -> (59.8, 169.8)
  line L20 (-11.5, 175.8) -> (-11.5, 157.7)
  line L21 (-11.5, 157.7) -> (-19.5, 157.7)
  line L22 (-19.5, 157.7) -> (-19.5, 175.8)
  line L23 (-19.5, 175.8) -> (-11.5, 175.8)
  line L24 (-22.7, -52.4) -> (-22.7, -57.4)
  line L25 (-22.7, -57.4) -> (-5, -57.4)
  arc A4 (0, -62.4) -> (-5, -57.4) centre (-5, -62.4) ccw
  line L26 (0, -62.4) -> (0, -87.4)
  line L27 (0, -87.4) -> (1.1, -87.4)
  line L28 (1.1, -87.4) -> (1.1, -107.4)
  line L29 (1.1, -107.4) -> (0, -107.4)
  line L30 (0, -107.4) -> (0, -169.7804)
  arc A5 (-5, -174.7804) -> (0, -169.7804) centre (-5, -169.7804) ccw
  line L31 (-5, -174.7804) -> (-64.3756, -174.7804)
  line L32 (-64.3756, -174.7804) -> (-64.3756, -57.4)
  line L33 (-64.3756, -57.4) -> (-44.9, -57.4)
  line L34 (-44.9, -57.4) -> (-44.9, -52.4)
  line L35 (-44.9, -52.4) -> (-22.7, -52.4)
  circle A6 centre (111.9, 150.6) radius 1.5
  circle A7 centre (-100.65, 156.7) radius 1.5
  circle A8 centre (111.9, -156.3) radius 1.5
  circle A9 centre (-100.65, -148.3) radius 1.5
  circle A10 centre (-100.65, -156.7) radius 1.5
  circle A11 centre (111.9, -150.6) radius 1.5
  circle A12 centre (-100.65, 148.3) radius 1.5
  circle A13 centre (111.9, 156.3) radius 1.5
  line L36 (-97.75, 142) -> (-109, 142)
  line L37 (-109, 142) -> (-109, -142)
  line L38 (-109, -142) -> (-97.75, -142)
  line L39 (-97.75, -142) -> (-97.75, -145)
  line L40 (-97.75, -145) -> (-105.25, -145)
  line L41 (-105.25, -145) -> (-105.25, -160)
  line L42 (-105.25, -160) -> (-97.75, -160)
  line L43 (-97.75, -160) -> (-97.75, -180)
  line L44 (-97.75, -180) -> (109, -180)
  line L45 (109, -180) -> (109, -160)
  line L46 (109, -160) -> (115.3, -160)
  line L47 (115.3, -160) -> (115.3, -146.9)
  line L48 (115.3, -146.9) -> (109, -146.9)
  line L49 (109, -146.9) -> (109, 146.9)
  line L50 (109, 146.9) -> (115.3, 146.9)
  line L51 (115.3, 146.9) -> (115.3, 160)
  line L52 (115.3, 160) -> (109, 160)
  line L53 (109, 160) -> (109, 180)
  line L54 (109, 180) -> (-97.75, 180)
  line L55 (-97.75, 180) -> (-97.75, 160)
  line L56 (-97.75, 160) -> (-105.25, 160)
  line L57 (-105.25, 160) -> (-105.25, 145)
  line L58 (-105.25, 145) -> (-97.75, 145)
  line L59 (-97.75, 145) -> (-97.75, 142)
  line L60 (109, -180) -> (109, 180)
  line L61 (-22.7, -52.4) -> (-22.7, 157.7)
  line L62 (-22.7, 157.7) -> (-19.5, 157.7)
  line L63 (-19.5, 175.8) -> (-44.9, 175.8)
  line L64 (-97.75, -180) -> (109, -180)
  line L65 (9, -165) -> (94, -165)
  line L66 (-22.7, -57.4) -> (-22.7, 157.7)
  line L67 (-14.7, 142.7) -> (94, 142.7)
  line L68 (-44.9, -57.4) -> (-64.3756, -57.4)
  line L69 (-44.9, -57.4) -> (-22.7, -57.4)
  line L70 (-97.75, -180) -> (-97.75, -142)
  line L71 (-97.75, 142) -> (-97.75, 180)
  line L72 (9, -165) -> (9, -116.4)
  line L73 (9, -116.4) -> (9, -62.4)
  arc A14 (9, -62.4) -> (-5, -48.4) centre (-5, -62.4) ccw
  line L74 (-5, -48.4) -> (-14.7, -48.4)
  line L75 (-94, 127) -> (-82.75, 127)
  line L76 (-82.75, 127) -> (-82.75, 145)
  line L77 (-82.75, 145) -> (-82.75, 165)
  line L78 (94, -145) -> (94, -165)
  line L79 (-82.75, -165) -> (-82.75, -160)
  line L80 (-82.75, -160) -> (-82.75, -127)
  line L81 (-82.75, -127) -> (-94, -127)
  line L82 (9, -78.4) -> (9, -62.4)
  arc A15 (9, -62.4) -> (-5, -48.4) centre (-5, -62.4) ccw
  line L83 (-5, -48.4) -> (-14.7, -48.4)
  line L84 (-82.75, 48.4) -> (-53.9, 48.4)
  line L85 (-82.75, 142.7) -> (-82.75, 127)
  line L86 (-73.3756, -48.4) -> (-73.3756, -165)
  line L87 (-82.75, -48.4) -> (-73.3756, -48.4)
  line L88 (-44.9, 175.8) -> (-44.9, -52.4)
  line L89 (-82.75, 48.4) -> (-82.75, 15)
  line L90 (-82.75, -15) -> (-82.75, -48.4)
  line L91 (-14.7, 15) -> (94, 15)
  line L92 (-14.7, -15) -> (94, -15)
  line L93 (-82.75, -15) -> (-94, -15)
  line L94 (-94, -127) -> (-94, -15)
  line L95 (-94, 15) -> (-94, 127)
  line L96 (-82.75, -165) -> (-73.3756, -165)
  line L97 (-73.3756, -165) -> (-82.75, -165)
  line L98 (94, -165) -> (9, -165)
  line L99 (9, -165) -> (94, -165)
  line L100 (-82.75, 15) -> (-94, 15)
  line L101 (-14.7, -57.4) -> (-14.7, -15)
  line L102 (-14.7, 15) -> (-14.7, 142.7)
  line L103 (94, -15) -> (94, -145)
  line L104 (94, -165) -> (94, -15)
  line L105 (94, -165) -> (94, -15)
  line L106 (94, -165) -> (94, -15)
  line L107 (94, 15) -> (94, 142.7)
  line L108 (94, 15) -> (94, 142.7)
  line L109 (94, 15) -> (94, 142.7)
  line L110 (94, 142.7) -> (94, 15)
  line L111 (-53.9, 48.4) -> (-53.9, 165)
  line L112 (-82.75, 165) -> (-53.9, 165)
  point P0 (0, 0)
  dimension "d143" = 9
extrude "Extrusión17" cut sketch "Boceto25" against normal blind 10 contours L101 L92 L103 L78 L65 L72 L73 A14 L74 | L67 L107 L91 L102 | L75 L76 L77 L112 L111 L84 L89 L100 L95 | L79 L80 L81 L94 L93 L90 L87 L86 L96
sketch "Boceto26" plane through (0, 0, 3.9) normal (0, 0, 1) x (1, 0, 0)
  line L0 (0, -107.4) -> (0, -169.7804)
  line L1 (0, -169.7804) -> (5, -169.7804)
  line L2 (5, -169.7804) -> (5, -162.7804)
  line L3 (5, -162.7804) -> (0, -162.7804)
  circle A0 centre (5, -166.2804) radius 2
  circle A1 centre (5, -166.2804) radius 3.5
  arc A2 (0, -62.4) -> (-5, -57.4) centre (-5, -62.4) ccw
  line L4 (0, -62.4) -> (5, -62.4)
  line L5 (5, -62.4) -> (5, -69.4)
  line L6 (5, -69.4) -> (0, -69.4)
  line L7 (0, -62.4) -> (0, -87.4)
  circle A3 centre (5, -65.9) radius 3.5
  circle A4 centre (5, -65.9) radius 2
  line L8 (-64.3756, -62.4) -> (-5, -62.4)
  line L9 (-64.3756, -62.4) -> (-69.3756, -62.4)
  line L10 (-69.3756, -62.4) -> (-69.3756, -69.4)
  line L11 (-69.3756, -69.4) -> (-63.3756, -69.4)
  line L12 (-64.3756, -62.4) -> (-64.3756, -169.7804)
  line L13 (-64.3756, -169.7804) -> (-69.3756, -169.7804)
  line L14 (-69.3756, -169.7804) -> (-69.3756, -163.3004)
  line L15 (-69.3756, -163.3004) -> (-64.3756, -163.3004)
  line L16 (-64.3756, -163.3004) -> (-64.3756, -169.7804)
  circle A5 centre (-69.3756, -65.9) radius 3.5
  circle A6 centre (-69.3756, -65.9) radius 2
  circle A7 centre (-69.3756, -166.5404) radius 2
  circle A8 centre (-69.3756, -166.5404) radius 3.24
  line L17 (-64.3756, -163.3) -> (-64.3756, -154.3)
  point P0 (0, 0)
  point P1 (-69.3756, -163.3004)
  point P2 (5, -169.7804)
  point P3 (5, -162.7804)
  point P4 (-64.3756, -69.4)
  dimension "d155" = 5
  dimension "d156" = 7
  dimension "d157" = 4
  dimension "d158" = 5
  dimension "d159" = 7
  dimension "d160" = 4
  dimension "d161" = 5
  dimension "d162" = 7
  dimension "d163" = 5
  dimension "d164" = 6.48
  dimension "d165" = 4
  dimension "d166" = 4
extrude "Extrusión18" add sketch "Boceto26" along normal blind 3.5 contours L3 A1 L1 L0 | A1 L2 A0 | L2 A0 A1 | L4 A3 L6 L7 | A3 L5 A4 | L5 A4 A3 | L12 L11 A5 L9 | L12 L13 A8 L15 | A5 L10 A6 | L10 A6 A5 | A8 L14 A7 | L14 A7 A8
fillet "Empalme4" radius 5 7 edges at (0, -169.7804, 5.65) (0, -162.7804, 5.65) (0, -62.4, 5.65) (0, -69.4, 5.65) (-64.3756, -169.7804, 5.65) (-64.3756, -62.4, 5.65) (-64.3756, -69.4, 5.65)
sketch "Boceto27" plane through (0, 0, 0) normal (0, 0, -1) x (-1, 0, 0)
  circle A0 centre (-111.9, -156.3) radius 1.2
  circle A1 centre (-111.9, -150.6) radius 1.2
  circle A2 centre (-111.9, 156.3) radius 1.2
  circle A3 centre (-111.9, 150.6) radius 1.2
  circle A4 centre (100.65, -156.7) radius 1.65
  circle A5 centre (100.65, -148.3) radius 1.65
  circle A6 centre (100.65, 156.7) radius 1.65
  circle A7 centre (100.65, 148.3) radius 1.65
  line L0 (-115.3, -160) -> (-109, -160)
  line L1 (-109, -160) -> (-109, -180)
  line L2 (-109, -180) -> (97.75, -180)
  line L3 (97.75, -180) -> (97.75, -160)
  line L4 (97.75, -160) -> (105.25, -160)
  line L5 (105.25, -160) -> (105.25, -145)
  line L6 (105.25, -145) -> (97.75, -145)
  line L7 (97.75, -145) -> (97.75, -142)
  line L8 (97.75, -142) -> (109, -142)
  line L9 (109, -142) -> (109, 142)
  line L10 (109, 142) -> (97.75, 142)
  line L11 (97.75, 142) -> (97.75, 145)
  line L12 (97.75, 145) -> (105.25, 145)
  line L13 (105.25, 145) -> (105.25, 160)
  line L14 (105.25, 160) -> (97.75, 160)
  line L15 (97.75, 160) -> (97.75, 180)
  line L16 (97.75, 180) -> (-109, 180)
  line L17 (-109, 180) -> (-109, 160)
  line L18 (-109, 160) -> (-115.3, 160)
  line L19 (-115.3, 160) -> (-115.3, 146.9)
  line L20 (-115.3, 146.9) -> (-109, 146.9)
  line L21 (-109, 146.9) -> (-109, -146.9)
  line L22 (-109, -146.9) -> (-115.3, -146.9)
  line L23 (-115.3, -146.9) -> (-115.3, -160)
  line L24 (64.3756, -57.4) -> (64.3756, -74.4)
  arc A8 (64.3756, -57.4) -> (69.3756, -62.4) centre (69.3756, -57.4) ccw
  arc A9 (69.3756, -69.4) -> (69.3756, -62.4) centre (69.3756, -65.9) ccw
  arc A10 (69.3756, -69.4) -> (64.3756, -74.4) centre (69.3756, -74.4) ccw
  circle A11 centre (69.3756, -65.9) radius 2
  line L25 (64.3756, -163.3004) -> (64.3756, -174.7804)
  line L26 (64.3756, -163.3004) -> (69.3756, -163.3004)
  arc A12 (69.3756, -169.7804) -> (69.3756, -163.3004) centre (69.3756, -166.5404) ccw
  arc A13 (69.3756, -169.7804) -> (64.3756, -174.7804) centre (69.3756, -174.7804) ccw
  circle A14 centre (69.3756, -166.5404) radius 2
  line L27 (0, -169.7804) -> (0, -157.7804)
  arc A15 (0, -169.7804) -> (0.6699, -172.2804) centre (5, -169.7804) ccw
  arc A16 (0.6699, -172.2804) -> (-3.6603, -169.7804) centre (-3.6603, -174.7804) ccw
  line L28 (-3.6603, -169.7804) -> (-5, -169.7804)
  arc A17 (-5, -162.7804) -> (-5, -169.7804) centre (-5, -166.2804) ccw
  arc A18 (-5, -162.7804) -> (0, -157.7804) centre (-5, -157.7804) ccw
  circle A19 centre (-5, -166.2804) radius 2
  line L29 (0, -74.4) -> (0, -62.4)
  arc A20 (0, -74.4) -> (-5, -69.4) centre (-5, -74.4) ccw
  arc A21 (-5, -62.4) -> (-5, -69.4) centre (-5, -65.9) ccw
  line L30 (-5, -62.4) -> (-3.6603, -62.4)
  arc A22 (-3.6603, -62.4) -> (0.6699, -59.9) centre (-3.6603, -57.4) ccw
  arc A23 (0.6699, -59.9) -> (0, -62.4) centre (5, -62.4) ccw
  circle A24 centre (-5, -65.9) radius 2
  point P0 (0, 0)
hole "Agujero7" at (-69.3756, -65.9, 0) at (-69.3756, -166.5404, 0) at (5, -166.2804, 0) at (5, -65.9, 0) direction (0, 0, 1) diameter 3 depth 3.9 countersink diameter 6 countersink angle 90
sketch "Boceto29" plane through (0, 0, 0) normal (0, 0, -1) x (-1, 0, 0)
  line L0 (14.7, 15) -> (-94, 15)
  line L1 (-94, -15) -> (14.7, -15)
  line L2 (14.7, -15) -> (14.7, 15)
  line L3 (14.7, 15) -> (-94, 15)
  line L4 (-94, 15) -> (-94, -15)
  line L5 (8.7, -9) -> (-88, -9)
  line L6 (-88, -9) -> (-88, 9)
  line L7 (-88, 9) -> (8.7, 9)
  line L8 (8.7, 9) -> (8.7, -9)
  circle A0 centre (8.7, -9) radius 1.5
  circle A1 centre (-88, -9) radius 1.5
  circle A2 centre (-88, 9) radius 1.5
  circle A3 centre (8.7, 9) radius 1.5
  circle A4 centre (-39.65, 9) radius 1.5
  circle A5 centre (-39.65, -9) radius 1.5
  point P0 (0, 0)
  dimension "d183" = 6
  dimension "d184" = 3
  dimension "d185" = 3
  dimension "d186" = 3
  dimension "d187" = 3
  dimension "d188" = 3
  dimension "d189" = 3
hole "Agujero8" at (-8.7, -9, 0) at (-8.7, 9, 0) at (39.65, 9, 0) at (39.65, -9, 0) at (88, -9, 0) at (88, 9, 0) direction (0, 0, 1) diameter 3 depth 3.9 countersink diameter 6 countersink angle 90
split "Dividir6" plane through (0, 0, 0) removes the side toward (0, -1, 0)
sketch "Boceto30" plane through (0, 0, 0) normal (0, 0, -1) x (-1, 0, 0)
  line L0 (-94, 15) -> (-94, 142.7)
  line L1 (-94, 142.7) -> (14.7, 142.7)
  line L2 (14.7, 142.7) -> (14.7, 150.7)
  line L3 (14.7, 150.7) -> (-94, 150.7)
  line L4 (-94, 150.7) -> (-94, 142.7)
  point P0 (0, 0)
  dimension "d197" = 108.7
  dimension "d198" = 8
extrude "Extrusión19" cut sketch "Boceto30" against normal blind 10
